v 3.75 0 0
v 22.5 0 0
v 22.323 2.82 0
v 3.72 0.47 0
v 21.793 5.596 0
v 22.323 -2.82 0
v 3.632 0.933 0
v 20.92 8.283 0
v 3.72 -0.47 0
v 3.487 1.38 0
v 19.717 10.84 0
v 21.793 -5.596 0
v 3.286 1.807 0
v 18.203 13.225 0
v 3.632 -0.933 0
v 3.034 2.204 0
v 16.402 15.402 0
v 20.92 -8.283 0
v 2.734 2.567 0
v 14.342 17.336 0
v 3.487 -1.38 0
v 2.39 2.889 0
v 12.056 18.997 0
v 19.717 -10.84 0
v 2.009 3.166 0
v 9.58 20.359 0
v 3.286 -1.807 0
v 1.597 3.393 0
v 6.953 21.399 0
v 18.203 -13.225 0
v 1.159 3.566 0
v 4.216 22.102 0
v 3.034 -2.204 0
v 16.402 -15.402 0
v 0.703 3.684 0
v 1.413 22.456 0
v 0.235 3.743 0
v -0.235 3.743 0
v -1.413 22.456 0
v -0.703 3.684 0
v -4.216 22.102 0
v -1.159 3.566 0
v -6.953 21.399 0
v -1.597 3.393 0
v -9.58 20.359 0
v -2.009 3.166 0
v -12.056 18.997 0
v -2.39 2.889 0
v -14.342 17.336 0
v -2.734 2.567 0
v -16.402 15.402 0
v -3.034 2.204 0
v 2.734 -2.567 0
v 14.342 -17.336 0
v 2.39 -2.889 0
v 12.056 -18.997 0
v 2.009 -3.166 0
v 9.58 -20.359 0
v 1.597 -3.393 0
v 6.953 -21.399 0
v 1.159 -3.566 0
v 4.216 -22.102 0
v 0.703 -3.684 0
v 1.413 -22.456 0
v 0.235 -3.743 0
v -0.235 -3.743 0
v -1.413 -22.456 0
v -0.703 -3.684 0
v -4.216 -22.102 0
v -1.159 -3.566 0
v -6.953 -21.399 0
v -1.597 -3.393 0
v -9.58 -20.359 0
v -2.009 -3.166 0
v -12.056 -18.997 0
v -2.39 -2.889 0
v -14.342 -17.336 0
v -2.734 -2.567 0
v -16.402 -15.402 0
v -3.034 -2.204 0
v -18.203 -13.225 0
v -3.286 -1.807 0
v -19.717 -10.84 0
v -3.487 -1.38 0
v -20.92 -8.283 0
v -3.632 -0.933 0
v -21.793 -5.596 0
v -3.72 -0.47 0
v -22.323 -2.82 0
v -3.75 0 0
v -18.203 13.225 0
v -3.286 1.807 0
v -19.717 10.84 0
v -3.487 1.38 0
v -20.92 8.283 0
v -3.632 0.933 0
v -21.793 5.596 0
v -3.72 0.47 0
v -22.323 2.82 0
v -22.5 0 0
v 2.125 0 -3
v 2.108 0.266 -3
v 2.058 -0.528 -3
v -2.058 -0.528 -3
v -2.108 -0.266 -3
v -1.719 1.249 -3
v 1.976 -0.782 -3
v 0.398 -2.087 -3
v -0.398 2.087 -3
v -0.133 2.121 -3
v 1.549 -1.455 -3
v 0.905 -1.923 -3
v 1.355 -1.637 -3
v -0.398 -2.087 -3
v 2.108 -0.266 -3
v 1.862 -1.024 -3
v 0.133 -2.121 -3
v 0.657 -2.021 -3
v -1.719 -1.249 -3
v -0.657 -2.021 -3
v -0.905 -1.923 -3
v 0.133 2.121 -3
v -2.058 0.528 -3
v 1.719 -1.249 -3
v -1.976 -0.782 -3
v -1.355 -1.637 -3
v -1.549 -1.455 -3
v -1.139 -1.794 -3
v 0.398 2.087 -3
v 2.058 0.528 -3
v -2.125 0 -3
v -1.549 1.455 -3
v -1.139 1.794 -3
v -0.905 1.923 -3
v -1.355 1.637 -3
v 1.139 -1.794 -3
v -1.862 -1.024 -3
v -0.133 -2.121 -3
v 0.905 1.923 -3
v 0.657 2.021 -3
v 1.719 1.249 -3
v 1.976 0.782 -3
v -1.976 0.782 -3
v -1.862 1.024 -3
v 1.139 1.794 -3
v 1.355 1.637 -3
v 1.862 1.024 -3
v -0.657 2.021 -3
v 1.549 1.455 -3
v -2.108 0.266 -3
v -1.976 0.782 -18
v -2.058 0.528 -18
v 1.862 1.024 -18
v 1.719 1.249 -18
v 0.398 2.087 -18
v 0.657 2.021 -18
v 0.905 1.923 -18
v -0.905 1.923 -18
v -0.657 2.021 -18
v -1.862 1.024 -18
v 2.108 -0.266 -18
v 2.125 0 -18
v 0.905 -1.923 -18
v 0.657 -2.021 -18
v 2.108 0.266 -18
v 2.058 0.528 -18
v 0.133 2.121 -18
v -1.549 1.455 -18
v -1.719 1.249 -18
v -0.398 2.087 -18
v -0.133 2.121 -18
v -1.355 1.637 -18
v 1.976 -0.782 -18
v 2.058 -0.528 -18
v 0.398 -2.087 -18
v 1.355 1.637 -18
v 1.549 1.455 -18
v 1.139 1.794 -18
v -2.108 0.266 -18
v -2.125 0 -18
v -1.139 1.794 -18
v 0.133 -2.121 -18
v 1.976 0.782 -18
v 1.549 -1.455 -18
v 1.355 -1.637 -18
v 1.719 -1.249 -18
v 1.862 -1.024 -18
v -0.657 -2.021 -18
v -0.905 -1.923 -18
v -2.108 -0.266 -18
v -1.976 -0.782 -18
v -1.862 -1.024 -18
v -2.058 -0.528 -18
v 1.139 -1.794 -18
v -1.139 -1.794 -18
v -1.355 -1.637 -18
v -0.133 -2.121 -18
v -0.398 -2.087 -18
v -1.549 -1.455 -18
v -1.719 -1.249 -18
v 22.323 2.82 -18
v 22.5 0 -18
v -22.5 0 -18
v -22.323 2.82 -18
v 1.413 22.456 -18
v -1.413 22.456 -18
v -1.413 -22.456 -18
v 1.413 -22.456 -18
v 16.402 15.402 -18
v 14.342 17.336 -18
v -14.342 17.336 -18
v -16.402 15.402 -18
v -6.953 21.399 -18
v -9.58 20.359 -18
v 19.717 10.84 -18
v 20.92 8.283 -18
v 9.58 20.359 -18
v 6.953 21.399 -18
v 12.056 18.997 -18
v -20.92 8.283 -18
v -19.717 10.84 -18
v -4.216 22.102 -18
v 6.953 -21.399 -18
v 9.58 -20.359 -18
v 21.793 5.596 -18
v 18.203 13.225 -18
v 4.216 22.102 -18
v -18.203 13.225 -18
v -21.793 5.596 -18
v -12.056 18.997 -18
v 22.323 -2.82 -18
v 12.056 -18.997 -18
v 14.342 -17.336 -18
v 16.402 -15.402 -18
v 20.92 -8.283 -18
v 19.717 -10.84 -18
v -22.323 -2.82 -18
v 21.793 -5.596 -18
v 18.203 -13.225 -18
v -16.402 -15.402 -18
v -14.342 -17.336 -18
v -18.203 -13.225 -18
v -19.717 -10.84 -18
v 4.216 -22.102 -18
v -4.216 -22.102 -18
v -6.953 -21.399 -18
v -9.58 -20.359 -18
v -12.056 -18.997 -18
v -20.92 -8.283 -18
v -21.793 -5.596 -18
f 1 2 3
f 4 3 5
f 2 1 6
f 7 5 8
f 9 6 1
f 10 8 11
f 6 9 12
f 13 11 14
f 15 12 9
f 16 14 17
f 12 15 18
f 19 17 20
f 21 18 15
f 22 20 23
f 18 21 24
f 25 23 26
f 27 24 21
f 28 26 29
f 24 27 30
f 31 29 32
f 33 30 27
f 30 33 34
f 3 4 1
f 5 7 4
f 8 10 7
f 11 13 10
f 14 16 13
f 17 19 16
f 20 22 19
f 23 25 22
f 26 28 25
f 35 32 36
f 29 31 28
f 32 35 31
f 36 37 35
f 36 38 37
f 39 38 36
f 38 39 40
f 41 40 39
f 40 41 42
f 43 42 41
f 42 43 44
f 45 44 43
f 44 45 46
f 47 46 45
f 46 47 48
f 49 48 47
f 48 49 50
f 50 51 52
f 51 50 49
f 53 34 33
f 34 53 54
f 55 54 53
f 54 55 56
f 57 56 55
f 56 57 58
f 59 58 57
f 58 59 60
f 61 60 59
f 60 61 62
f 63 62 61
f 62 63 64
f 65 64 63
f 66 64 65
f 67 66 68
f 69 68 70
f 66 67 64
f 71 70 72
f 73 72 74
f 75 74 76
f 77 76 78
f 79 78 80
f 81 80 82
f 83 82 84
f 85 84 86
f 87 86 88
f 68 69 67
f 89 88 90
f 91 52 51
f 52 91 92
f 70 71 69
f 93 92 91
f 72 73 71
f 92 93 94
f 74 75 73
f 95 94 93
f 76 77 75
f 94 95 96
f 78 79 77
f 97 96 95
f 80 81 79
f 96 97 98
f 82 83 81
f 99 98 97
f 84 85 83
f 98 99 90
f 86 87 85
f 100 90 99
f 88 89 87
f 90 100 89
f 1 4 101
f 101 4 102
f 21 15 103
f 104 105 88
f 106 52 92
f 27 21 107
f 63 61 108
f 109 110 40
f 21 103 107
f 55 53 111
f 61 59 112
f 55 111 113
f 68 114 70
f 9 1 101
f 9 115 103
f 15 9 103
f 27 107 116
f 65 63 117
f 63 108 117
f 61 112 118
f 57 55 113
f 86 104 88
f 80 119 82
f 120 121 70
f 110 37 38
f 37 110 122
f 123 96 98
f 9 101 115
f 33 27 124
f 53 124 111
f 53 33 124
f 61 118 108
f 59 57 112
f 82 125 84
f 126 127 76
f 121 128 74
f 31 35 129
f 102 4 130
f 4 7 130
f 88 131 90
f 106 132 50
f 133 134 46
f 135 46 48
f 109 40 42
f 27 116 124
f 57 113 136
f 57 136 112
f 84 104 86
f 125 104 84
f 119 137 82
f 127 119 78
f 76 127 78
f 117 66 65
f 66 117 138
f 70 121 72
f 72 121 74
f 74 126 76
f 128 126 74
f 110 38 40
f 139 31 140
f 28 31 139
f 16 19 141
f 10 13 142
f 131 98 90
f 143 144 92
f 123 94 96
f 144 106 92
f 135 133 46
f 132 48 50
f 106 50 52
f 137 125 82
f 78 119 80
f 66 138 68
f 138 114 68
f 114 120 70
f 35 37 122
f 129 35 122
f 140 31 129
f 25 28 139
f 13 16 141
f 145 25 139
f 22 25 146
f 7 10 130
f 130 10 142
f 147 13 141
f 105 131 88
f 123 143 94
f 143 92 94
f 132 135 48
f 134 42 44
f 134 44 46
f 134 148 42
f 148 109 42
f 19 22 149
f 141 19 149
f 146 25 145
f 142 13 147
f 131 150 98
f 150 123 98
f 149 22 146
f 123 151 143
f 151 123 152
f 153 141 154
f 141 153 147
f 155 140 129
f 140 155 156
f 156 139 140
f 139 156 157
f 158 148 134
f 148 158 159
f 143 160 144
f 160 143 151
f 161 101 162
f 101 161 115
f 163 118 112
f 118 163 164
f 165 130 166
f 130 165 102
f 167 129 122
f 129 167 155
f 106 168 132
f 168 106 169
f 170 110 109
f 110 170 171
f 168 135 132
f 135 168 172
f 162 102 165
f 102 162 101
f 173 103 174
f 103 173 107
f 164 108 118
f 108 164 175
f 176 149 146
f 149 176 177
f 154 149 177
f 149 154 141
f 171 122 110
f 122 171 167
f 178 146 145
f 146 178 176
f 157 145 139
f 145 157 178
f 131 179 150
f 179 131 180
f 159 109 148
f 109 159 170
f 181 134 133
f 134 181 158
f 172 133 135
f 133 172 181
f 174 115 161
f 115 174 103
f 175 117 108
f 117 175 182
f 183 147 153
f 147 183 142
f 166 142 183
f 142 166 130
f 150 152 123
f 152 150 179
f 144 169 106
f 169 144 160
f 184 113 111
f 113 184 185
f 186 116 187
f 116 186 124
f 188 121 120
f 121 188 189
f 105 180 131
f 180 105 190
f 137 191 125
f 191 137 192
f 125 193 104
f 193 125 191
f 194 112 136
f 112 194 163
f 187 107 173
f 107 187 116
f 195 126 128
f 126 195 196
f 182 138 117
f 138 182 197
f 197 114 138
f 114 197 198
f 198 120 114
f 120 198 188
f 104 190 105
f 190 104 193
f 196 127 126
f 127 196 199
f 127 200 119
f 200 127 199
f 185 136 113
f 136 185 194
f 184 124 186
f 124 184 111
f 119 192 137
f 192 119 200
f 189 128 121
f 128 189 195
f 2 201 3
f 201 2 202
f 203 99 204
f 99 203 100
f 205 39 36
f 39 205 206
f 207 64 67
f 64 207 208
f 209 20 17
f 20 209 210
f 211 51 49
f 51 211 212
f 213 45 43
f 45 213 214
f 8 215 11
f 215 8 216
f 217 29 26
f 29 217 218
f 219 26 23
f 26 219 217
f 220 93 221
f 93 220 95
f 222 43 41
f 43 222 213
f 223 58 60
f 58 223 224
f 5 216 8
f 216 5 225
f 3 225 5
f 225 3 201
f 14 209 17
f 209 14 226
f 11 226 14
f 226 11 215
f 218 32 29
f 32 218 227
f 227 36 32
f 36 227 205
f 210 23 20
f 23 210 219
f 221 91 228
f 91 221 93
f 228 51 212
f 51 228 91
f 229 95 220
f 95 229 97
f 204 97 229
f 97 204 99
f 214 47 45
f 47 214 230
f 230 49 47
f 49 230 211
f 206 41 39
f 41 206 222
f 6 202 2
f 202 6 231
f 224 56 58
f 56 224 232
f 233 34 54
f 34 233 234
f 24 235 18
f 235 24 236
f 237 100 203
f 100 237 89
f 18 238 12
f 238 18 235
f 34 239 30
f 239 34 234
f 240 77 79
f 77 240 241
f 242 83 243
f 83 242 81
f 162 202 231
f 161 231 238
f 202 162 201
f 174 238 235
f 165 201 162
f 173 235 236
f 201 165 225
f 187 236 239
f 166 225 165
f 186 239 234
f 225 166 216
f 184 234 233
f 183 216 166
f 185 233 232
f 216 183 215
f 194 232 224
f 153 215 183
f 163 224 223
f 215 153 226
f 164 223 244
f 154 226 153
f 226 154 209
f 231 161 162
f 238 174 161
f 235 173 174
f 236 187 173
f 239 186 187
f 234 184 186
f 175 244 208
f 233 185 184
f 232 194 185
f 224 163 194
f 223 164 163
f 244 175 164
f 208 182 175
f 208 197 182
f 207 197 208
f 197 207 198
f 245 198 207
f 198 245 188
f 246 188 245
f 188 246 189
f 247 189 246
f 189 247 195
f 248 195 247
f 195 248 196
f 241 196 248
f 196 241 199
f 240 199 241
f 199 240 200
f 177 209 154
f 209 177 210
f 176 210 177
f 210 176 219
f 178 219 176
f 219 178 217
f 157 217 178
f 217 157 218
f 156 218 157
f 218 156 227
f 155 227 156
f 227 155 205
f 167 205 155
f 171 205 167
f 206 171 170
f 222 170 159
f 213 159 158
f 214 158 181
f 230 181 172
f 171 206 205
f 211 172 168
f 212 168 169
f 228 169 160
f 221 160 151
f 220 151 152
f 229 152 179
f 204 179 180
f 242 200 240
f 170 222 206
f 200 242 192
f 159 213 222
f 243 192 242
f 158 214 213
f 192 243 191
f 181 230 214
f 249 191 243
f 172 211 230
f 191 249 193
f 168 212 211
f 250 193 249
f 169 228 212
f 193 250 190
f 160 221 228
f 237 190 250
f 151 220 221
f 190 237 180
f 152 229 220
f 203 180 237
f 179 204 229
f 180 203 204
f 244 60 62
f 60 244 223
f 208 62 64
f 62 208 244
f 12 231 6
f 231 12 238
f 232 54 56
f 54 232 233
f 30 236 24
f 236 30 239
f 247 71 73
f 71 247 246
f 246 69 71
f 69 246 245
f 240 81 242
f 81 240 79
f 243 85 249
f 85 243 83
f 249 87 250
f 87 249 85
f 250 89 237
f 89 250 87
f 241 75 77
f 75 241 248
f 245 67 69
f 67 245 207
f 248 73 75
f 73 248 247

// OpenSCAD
$fn = 50;

difference() {
	union() {
		translate(v = [0, 0, -18.0]) {
			cylinder(h = 18, r = 22.5);
		}
	}
	union() {
		translate(v = [0, 0, 0]) {
			rotate(a = [0, 0, 0]) {
				difference() {
					union() {
						translate(v = [0, 0, -21.0]) {
							cylinder(h = 21, r = 2.0);
						}
						translate(v = [0, 0, -3]) {
							cylinder(h = 3, r1 = 2.125, r2 = 3.75);
						}
						translate(v = [0, 0, -21.0]) {
							cylinder(h = 21, r = 2.125);
						}
						translate(v = [0, 0, -21.0]) {
							cylinder(h = 21, r = 2.0);
						}
					}
					union();
				}
			}
		}
	}
}
